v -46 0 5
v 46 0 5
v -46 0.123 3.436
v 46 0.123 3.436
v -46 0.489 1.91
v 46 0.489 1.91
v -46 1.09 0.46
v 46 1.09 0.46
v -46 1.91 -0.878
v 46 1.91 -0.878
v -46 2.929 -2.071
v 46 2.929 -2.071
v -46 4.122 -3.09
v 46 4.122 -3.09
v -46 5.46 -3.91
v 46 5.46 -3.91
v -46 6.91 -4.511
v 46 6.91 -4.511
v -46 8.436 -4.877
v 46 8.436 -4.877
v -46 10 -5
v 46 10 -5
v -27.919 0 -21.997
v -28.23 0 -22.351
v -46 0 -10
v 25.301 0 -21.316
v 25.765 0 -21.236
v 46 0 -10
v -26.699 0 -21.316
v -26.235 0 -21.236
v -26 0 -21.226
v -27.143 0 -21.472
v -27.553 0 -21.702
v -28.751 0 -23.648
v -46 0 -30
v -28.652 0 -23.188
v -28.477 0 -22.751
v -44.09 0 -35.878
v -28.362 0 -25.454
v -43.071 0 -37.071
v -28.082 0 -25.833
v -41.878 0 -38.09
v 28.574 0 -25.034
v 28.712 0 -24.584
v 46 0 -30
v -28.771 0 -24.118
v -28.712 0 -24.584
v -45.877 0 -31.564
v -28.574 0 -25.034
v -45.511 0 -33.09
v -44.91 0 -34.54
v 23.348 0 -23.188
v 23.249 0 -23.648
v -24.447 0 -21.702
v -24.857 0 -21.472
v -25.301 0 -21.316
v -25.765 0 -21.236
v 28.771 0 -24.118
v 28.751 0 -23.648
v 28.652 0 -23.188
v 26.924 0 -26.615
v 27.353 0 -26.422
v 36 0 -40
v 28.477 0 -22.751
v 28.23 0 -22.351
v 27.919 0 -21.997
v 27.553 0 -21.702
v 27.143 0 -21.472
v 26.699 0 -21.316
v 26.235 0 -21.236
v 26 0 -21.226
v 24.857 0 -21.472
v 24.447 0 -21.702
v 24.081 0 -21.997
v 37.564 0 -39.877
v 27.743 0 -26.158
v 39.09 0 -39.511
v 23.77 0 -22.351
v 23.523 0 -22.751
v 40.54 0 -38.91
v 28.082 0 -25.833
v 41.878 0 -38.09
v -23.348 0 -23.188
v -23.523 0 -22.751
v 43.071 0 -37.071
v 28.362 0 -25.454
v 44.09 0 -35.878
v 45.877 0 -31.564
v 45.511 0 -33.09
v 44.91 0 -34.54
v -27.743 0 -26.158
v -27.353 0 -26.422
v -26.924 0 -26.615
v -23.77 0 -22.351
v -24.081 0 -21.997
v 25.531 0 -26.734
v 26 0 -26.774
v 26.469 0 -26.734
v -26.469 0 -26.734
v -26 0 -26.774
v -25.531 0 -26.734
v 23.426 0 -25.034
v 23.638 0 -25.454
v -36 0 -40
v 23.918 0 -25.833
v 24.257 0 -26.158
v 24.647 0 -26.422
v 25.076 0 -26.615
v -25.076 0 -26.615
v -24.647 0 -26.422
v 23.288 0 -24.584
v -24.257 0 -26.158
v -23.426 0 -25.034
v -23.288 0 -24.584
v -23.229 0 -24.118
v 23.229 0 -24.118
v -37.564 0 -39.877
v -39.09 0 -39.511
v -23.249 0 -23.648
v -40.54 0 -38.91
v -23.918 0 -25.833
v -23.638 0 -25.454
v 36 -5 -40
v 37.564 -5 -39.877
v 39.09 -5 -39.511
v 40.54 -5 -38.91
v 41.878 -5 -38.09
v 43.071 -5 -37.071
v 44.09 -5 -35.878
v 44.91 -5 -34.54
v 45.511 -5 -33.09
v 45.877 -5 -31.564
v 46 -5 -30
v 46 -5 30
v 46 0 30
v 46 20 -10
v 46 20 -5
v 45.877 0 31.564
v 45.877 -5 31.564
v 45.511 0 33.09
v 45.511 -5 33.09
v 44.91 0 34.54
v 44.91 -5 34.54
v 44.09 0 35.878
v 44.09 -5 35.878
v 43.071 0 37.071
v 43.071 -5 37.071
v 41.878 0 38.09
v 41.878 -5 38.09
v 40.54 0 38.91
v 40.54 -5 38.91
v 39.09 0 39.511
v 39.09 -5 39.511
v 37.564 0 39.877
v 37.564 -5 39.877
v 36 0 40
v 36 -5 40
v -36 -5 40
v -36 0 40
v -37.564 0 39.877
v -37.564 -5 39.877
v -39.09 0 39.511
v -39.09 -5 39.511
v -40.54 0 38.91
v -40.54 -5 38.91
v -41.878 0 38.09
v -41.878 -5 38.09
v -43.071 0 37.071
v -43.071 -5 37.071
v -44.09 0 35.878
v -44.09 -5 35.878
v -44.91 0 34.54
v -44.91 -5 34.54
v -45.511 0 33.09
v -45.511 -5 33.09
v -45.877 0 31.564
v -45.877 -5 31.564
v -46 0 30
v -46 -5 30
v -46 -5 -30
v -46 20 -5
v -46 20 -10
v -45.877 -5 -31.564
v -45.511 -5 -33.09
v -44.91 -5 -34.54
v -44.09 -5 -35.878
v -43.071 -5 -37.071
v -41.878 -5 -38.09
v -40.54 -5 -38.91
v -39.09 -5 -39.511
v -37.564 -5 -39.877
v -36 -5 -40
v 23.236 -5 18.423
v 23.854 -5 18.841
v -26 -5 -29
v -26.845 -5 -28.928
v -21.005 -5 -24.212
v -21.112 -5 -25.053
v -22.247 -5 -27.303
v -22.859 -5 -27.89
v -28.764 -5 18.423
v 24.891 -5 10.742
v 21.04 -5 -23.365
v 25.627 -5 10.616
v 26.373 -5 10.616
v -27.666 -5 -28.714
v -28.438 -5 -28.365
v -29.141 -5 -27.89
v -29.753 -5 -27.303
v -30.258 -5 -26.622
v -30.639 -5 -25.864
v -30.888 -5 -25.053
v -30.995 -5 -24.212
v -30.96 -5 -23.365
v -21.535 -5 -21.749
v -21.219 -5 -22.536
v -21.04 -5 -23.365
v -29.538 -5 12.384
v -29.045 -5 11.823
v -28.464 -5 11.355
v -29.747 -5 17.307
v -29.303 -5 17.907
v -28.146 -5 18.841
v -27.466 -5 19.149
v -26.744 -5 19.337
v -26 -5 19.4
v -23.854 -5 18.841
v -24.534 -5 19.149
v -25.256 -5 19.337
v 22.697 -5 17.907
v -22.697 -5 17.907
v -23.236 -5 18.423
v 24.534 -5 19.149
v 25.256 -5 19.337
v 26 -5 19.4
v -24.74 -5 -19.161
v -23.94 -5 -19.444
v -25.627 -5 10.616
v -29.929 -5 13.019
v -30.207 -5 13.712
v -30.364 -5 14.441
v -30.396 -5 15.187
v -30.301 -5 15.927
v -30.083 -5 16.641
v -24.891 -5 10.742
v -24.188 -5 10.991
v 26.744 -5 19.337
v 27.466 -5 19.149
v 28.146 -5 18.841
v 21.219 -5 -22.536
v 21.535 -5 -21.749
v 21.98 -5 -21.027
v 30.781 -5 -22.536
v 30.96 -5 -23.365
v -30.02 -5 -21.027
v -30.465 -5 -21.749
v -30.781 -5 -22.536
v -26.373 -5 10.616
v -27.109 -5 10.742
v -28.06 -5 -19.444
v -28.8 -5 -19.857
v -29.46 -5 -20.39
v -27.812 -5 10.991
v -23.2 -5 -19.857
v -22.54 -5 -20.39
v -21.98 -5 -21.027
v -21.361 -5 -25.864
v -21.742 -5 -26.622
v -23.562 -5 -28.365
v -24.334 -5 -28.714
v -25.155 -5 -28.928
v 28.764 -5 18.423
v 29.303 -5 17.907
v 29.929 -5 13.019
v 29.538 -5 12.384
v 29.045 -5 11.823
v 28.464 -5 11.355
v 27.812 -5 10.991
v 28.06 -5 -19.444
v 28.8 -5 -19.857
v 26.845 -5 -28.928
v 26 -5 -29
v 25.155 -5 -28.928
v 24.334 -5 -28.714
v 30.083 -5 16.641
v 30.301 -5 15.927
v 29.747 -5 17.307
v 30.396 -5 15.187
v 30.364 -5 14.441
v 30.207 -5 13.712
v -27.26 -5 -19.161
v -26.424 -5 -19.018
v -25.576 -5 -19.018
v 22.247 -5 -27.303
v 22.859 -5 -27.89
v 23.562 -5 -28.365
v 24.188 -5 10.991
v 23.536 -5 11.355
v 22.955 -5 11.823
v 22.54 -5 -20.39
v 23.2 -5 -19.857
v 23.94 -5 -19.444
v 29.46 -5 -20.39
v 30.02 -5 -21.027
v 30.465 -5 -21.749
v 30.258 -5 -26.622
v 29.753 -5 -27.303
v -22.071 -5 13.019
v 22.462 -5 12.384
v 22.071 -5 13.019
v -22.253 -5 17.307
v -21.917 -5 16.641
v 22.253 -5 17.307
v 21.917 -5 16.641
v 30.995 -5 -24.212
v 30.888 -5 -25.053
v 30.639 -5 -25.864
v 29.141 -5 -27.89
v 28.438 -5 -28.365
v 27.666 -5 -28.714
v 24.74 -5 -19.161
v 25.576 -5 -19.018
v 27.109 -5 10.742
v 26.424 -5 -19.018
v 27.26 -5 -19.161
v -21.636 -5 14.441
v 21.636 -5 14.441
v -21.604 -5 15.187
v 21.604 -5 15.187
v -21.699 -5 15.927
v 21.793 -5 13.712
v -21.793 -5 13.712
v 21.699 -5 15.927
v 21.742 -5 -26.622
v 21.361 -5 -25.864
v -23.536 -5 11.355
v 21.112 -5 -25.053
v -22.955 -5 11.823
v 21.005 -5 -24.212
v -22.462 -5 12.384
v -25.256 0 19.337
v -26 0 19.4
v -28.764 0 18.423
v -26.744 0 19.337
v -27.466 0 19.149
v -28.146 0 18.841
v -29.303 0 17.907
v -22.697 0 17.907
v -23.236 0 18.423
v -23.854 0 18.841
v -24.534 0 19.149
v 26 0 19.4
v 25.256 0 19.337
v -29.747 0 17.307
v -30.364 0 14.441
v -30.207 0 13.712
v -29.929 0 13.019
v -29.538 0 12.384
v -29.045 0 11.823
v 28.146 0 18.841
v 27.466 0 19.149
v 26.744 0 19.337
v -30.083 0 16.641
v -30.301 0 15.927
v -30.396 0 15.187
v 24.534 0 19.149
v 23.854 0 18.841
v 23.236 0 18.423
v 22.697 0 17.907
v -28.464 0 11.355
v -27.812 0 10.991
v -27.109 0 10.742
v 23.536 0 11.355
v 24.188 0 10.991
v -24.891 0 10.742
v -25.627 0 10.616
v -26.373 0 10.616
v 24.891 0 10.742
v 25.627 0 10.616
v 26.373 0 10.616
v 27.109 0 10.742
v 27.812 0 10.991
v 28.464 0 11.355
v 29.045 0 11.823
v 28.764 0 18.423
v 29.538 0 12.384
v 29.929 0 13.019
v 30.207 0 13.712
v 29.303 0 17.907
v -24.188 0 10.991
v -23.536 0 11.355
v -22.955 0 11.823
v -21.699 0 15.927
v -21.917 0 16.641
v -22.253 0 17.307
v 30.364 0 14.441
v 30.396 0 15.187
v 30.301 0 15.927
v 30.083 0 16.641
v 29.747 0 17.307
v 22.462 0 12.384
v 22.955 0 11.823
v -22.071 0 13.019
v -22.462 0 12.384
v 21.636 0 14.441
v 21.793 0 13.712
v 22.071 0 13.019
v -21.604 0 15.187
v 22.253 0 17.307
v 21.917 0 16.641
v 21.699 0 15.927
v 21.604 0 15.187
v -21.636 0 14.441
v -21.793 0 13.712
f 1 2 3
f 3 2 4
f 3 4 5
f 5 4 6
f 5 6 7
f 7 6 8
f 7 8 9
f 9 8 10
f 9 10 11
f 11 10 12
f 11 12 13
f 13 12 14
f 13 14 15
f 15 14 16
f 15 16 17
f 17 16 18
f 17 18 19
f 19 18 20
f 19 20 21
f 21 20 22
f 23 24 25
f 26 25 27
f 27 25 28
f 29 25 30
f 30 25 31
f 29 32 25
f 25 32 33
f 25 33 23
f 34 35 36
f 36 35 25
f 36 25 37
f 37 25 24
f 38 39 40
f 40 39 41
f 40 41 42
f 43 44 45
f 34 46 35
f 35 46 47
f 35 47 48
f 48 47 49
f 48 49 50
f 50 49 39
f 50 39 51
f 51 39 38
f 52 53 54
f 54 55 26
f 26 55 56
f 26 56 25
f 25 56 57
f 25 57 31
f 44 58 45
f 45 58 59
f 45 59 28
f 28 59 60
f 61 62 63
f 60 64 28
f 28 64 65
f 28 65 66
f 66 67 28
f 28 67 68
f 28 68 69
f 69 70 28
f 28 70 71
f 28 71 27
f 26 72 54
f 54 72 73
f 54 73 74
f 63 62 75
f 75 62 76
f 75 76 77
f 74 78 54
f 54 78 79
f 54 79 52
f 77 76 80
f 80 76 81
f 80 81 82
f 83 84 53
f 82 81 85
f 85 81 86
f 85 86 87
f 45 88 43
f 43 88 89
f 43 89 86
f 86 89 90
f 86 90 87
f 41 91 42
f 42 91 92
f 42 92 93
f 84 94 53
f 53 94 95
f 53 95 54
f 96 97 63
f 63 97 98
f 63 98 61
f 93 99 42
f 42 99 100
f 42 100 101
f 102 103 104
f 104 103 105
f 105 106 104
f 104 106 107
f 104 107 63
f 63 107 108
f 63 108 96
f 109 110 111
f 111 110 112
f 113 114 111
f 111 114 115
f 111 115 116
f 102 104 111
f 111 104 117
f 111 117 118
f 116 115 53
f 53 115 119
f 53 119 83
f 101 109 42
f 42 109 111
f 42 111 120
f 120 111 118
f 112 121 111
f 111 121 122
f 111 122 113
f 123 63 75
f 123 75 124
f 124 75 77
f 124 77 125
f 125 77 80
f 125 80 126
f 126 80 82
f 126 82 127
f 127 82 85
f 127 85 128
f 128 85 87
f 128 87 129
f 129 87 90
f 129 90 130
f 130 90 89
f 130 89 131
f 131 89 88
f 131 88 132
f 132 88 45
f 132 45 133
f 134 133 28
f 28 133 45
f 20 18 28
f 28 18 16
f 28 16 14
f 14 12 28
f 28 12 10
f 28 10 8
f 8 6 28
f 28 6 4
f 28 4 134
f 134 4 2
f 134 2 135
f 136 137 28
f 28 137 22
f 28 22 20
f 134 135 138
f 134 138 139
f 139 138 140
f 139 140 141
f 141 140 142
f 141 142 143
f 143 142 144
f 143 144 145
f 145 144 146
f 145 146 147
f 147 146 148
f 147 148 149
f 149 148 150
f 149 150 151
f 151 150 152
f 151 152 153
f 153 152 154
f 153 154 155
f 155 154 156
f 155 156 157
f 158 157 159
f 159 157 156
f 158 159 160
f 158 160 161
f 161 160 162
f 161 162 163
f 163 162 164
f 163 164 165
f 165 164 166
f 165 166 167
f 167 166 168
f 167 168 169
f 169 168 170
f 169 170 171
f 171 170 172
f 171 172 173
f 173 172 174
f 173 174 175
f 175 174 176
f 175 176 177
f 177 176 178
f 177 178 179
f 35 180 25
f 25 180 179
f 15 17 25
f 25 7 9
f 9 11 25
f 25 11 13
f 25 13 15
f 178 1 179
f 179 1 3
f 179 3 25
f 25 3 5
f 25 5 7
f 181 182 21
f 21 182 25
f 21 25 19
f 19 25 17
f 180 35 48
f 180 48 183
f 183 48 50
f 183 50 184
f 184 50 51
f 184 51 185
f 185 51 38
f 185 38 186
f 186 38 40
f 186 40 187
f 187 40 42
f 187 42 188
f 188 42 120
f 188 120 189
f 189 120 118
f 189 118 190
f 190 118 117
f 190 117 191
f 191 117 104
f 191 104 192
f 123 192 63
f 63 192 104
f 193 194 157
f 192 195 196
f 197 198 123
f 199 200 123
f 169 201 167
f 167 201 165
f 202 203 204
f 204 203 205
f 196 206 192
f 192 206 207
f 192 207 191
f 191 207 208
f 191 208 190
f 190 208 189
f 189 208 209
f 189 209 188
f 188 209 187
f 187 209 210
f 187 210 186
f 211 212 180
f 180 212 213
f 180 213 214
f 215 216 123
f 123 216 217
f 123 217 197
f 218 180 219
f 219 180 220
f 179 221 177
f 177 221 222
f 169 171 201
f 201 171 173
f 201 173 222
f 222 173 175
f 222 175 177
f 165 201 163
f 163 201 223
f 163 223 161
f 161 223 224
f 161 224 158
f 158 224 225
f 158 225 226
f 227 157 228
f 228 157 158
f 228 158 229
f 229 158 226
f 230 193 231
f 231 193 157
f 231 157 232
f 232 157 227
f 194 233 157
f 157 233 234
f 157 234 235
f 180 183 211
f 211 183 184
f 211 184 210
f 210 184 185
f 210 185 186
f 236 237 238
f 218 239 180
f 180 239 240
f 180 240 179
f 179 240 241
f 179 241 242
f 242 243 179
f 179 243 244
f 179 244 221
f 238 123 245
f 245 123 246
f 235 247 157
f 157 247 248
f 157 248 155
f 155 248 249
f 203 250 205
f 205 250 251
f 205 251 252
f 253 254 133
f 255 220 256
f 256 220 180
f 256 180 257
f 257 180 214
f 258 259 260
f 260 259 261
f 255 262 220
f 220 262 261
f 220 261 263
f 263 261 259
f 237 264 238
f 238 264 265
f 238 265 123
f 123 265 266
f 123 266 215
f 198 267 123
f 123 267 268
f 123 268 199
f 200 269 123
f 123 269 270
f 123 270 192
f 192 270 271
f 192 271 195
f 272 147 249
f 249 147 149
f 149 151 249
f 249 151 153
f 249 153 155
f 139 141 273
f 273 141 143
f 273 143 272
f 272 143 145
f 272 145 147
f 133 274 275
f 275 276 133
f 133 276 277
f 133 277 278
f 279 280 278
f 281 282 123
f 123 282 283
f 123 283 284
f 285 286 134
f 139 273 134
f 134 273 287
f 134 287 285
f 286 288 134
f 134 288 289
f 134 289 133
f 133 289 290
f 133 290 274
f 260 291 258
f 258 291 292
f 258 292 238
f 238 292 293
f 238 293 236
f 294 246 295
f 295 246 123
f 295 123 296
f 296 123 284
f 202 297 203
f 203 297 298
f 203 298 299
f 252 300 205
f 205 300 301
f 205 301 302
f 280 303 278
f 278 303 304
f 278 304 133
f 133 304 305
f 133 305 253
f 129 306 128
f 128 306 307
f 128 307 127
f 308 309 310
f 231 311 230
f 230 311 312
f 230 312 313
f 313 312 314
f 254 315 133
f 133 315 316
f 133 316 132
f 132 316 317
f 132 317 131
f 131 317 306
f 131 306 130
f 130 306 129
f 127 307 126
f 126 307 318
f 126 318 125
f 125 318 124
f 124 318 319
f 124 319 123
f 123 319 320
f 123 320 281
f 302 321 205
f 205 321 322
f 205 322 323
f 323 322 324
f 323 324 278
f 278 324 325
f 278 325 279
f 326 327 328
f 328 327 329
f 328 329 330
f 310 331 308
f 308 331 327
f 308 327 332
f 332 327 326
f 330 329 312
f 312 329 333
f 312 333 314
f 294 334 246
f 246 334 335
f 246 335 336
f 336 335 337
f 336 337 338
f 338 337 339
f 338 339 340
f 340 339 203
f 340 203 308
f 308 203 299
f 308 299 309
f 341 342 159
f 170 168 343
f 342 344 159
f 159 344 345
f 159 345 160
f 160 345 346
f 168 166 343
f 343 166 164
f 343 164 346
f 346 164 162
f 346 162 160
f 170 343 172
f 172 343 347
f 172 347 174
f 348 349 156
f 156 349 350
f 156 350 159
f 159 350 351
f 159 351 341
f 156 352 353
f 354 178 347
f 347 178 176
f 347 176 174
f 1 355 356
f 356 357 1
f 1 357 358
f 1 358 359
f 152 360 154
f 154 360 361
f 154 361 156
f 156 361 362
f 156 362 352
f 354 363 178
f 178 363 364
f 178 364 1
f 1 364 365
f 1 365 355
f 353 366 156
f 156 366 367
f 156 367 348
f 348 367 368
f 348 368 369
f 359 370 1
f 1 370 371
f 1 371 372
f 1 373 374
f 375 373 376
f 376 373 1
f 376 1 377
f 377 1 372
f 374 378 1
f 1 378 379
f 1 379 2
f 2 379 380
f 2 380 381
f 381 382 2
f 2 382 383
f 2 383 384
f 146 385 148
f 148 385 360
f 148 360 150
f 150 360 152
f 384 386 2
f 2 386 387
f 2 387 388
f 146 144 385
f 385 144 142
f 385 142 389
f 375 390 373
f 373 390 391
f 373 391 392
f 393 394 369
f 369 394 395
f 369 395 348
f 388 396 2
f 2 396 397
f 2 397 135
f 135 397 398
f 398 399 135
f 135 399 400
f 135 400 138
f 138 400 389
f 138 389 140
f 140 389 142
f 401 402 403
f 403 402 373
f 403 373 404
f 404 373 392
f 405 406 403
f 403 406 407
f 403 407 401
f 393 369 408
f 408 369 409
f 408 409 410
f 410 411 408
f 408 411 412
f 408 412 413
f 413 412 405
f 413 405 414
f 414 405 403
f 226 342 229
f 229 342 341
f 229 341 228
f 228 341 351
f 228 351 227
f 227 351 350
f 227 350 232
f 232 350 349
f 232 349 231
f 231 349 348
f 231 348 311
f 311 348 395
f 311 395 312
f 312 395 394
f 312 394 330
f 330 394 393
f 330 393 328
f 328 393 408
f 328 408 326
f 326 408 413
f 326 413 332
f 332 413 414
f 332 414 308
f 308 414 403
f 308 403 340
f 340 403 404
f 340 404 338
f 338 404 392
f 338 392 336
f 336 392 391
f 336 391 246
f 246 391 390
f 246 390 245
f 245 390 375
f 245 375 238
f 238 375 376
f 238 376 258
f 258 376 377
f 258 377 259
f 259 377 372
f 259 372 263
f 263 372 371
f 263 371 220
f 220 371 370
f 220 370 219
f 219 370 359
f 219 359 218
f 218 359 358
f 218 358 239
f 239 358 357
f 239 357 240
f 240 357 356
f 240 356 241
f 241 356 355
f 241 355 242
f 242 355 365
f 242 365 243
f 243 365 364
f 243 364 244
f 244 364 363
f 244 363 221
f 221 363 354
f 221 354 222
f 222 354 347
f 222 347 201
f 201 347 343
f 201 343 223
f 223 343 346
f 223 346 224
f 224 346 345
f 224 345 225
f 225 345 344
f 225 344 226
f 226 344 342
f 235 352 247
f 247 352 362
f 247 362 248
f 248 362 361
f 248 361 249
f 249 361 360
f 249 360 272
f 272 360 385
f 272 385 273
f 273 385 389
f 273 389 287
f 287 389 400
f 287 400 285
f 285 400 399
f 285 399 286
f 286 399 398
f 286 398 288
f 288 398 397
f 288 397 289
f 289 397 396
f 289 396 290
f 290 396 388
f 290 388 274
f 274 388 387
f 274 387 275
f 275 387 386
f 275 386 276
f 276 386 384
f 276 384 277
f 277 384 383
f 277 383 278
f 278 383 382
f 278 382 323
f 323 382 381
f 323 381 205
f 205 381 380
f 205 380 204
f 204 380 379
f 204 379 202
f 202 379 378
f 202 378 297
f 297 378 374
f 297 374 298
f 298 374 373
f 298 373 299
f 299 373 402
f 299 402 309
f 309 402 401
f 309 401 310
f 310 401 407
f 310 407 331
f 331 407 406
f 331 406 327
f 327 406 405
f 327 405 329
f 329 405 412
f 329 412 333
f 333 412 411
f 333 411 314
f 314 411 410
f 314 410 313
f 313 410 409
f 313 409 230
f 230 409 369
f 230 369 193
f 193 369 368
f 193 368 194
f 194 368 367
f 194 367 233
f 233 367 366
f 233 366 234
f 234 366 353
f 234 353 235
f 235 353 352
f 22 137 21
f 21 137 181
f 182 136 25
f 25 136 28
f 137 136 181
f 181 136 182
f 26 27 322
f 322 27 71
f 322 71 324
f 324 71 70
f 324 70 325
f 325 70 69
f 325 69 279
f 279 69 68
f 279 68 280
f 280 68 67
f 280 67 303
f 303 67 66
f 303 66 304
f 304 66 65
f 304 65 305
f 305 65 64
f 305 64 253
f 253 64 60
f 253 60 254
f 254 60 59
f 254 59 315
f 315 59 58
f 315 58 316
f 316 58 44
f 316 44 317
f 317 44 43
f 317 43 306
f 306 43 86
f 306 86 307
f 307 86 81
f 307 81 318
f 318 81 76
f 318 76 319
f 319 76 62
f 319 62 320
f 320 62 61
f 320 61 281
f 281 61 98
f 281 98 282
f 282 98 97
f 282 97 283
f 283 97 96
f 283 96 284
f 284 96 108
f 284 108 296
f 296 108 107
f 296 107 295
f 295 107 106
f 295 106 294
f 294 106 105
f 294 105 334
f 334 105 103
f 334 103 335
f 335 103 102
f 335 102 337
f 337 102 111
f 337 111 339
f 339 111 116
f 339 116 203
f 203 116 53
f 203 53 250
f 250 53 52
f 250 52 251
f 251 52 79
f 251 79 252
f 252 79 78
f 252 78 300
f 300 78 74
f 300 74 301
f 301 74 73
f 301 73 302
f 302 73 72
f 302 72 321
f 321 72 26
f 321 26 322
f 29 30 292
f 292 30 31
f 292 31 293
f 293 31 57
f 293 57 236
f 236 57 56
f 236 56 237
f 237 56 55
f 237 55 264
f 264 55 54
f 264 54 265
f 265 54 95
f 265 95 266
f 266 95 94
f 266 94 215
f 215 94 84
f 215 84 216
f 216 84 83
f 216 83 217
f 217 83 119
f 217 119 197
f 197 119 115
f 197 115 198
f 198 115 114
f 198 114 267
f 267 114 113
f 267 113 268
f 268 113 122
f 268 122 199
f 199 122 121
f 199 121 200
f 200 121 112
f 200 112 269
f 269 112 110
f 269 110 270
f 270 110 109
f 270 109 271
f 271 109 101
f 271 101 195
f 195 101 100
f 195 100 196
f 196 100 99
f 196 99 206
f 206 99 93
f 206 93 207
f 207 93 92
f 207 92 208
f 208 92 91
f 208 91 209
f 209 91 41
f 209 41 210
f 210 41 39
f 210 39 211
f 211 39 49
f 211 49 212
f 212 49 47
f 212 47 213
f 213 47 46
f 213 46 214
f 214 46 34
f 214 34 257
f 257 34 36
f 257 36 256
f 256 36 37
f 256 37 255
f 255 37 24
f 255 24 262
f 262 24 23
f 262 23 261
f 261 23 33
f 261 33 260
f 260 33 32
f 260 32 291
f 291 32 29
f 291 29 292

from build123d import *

# Parameters (mm, degrees)
SKETCH1_R           = 4.4
BOSS_EXTRUDE1_DEPTH = 5
SKETCH2_W           = 92
SKETCH2_H           = 5
BOSS_EXTRUDE2_DEPTH = 20
FILLET1_R           = 10
SKETCH3_R           = 5
CUT_EXTRUDE1_DEPTH  = 5
CUT_EXTRUDE1_TAPER  = 24


with BuildPart() as part:
    # Sketch1 → Boss-Extrude1 (new body)
    with BuildSketch(Plane(origin=(0, 0, 0), x_dir=(1, 0, 0), z_dir=(0, 1, 0))):
        with BuildLine():
            Line((-36, 40), (36, 40))
            ThreePointArc((36, 40), (43.071067812, 37.071067812), (46, 30))
            Line((46, 30), (46, -30))
            ThreePointArc((46, -30), (43.071067812, -37.071067812), (36, -40))
            Line((36, -40), (-36, -40))
            ThreePointArc((-36, -40), (-43.071067812, -37.071067812), (-46, -30))
            Line((-46, -30), (-46, 30))
            ThreePointArc((-46, 30), (-43.071067812, 37.071067812), (-36, 40))
        make_face()
        with Locations((-26, -15)):
            Circle(SKETCH1_R, mode=Mode.SUBTRACT)
        with Locations((26, -15)):
            Circle(SKETCH1_R, mode=Mode.SUBTRACT)
    extrude(amount=-BOSS_EXTRUDE1_DEPTH)

    # Sketch2 → Boss-Extrude2 (add)
    with BuildSketch(Plane(origin=(0, 0, 0), x_dir=(1, 0, 0), z_dir=(0, 1, 0))):
        with Locations((0, 7.5)):
            Rectangle(SKETCH2_W, SKETCH2_H)
    extrude(amount=BOSS_EXTRUDE2_DEPTH)

    # Fillet1
    fillet1_edges = [part.edges().sort_by_distance(p)[0] for p in [
        (0, 0, -5),
    ]]
    fillet(fillet1_edges, radius=FILLET1_R)

    # Sketch3 → Cut-Extrude1 (cut)
    with BuildSketch(Plane.XZ.offset(5)):
        with Locations((-26, -24)):
            Circle(SKETCH3_R)
        with Locations((26, -24)):
            Circle(SKETCH3_R)
    extrude(amount=-CUT_EXTRUDE1_DEPTH, taper=CUT_EXTRUDE1_TAPER, mode=Mode.SUBTRACT)


solid = part.part
